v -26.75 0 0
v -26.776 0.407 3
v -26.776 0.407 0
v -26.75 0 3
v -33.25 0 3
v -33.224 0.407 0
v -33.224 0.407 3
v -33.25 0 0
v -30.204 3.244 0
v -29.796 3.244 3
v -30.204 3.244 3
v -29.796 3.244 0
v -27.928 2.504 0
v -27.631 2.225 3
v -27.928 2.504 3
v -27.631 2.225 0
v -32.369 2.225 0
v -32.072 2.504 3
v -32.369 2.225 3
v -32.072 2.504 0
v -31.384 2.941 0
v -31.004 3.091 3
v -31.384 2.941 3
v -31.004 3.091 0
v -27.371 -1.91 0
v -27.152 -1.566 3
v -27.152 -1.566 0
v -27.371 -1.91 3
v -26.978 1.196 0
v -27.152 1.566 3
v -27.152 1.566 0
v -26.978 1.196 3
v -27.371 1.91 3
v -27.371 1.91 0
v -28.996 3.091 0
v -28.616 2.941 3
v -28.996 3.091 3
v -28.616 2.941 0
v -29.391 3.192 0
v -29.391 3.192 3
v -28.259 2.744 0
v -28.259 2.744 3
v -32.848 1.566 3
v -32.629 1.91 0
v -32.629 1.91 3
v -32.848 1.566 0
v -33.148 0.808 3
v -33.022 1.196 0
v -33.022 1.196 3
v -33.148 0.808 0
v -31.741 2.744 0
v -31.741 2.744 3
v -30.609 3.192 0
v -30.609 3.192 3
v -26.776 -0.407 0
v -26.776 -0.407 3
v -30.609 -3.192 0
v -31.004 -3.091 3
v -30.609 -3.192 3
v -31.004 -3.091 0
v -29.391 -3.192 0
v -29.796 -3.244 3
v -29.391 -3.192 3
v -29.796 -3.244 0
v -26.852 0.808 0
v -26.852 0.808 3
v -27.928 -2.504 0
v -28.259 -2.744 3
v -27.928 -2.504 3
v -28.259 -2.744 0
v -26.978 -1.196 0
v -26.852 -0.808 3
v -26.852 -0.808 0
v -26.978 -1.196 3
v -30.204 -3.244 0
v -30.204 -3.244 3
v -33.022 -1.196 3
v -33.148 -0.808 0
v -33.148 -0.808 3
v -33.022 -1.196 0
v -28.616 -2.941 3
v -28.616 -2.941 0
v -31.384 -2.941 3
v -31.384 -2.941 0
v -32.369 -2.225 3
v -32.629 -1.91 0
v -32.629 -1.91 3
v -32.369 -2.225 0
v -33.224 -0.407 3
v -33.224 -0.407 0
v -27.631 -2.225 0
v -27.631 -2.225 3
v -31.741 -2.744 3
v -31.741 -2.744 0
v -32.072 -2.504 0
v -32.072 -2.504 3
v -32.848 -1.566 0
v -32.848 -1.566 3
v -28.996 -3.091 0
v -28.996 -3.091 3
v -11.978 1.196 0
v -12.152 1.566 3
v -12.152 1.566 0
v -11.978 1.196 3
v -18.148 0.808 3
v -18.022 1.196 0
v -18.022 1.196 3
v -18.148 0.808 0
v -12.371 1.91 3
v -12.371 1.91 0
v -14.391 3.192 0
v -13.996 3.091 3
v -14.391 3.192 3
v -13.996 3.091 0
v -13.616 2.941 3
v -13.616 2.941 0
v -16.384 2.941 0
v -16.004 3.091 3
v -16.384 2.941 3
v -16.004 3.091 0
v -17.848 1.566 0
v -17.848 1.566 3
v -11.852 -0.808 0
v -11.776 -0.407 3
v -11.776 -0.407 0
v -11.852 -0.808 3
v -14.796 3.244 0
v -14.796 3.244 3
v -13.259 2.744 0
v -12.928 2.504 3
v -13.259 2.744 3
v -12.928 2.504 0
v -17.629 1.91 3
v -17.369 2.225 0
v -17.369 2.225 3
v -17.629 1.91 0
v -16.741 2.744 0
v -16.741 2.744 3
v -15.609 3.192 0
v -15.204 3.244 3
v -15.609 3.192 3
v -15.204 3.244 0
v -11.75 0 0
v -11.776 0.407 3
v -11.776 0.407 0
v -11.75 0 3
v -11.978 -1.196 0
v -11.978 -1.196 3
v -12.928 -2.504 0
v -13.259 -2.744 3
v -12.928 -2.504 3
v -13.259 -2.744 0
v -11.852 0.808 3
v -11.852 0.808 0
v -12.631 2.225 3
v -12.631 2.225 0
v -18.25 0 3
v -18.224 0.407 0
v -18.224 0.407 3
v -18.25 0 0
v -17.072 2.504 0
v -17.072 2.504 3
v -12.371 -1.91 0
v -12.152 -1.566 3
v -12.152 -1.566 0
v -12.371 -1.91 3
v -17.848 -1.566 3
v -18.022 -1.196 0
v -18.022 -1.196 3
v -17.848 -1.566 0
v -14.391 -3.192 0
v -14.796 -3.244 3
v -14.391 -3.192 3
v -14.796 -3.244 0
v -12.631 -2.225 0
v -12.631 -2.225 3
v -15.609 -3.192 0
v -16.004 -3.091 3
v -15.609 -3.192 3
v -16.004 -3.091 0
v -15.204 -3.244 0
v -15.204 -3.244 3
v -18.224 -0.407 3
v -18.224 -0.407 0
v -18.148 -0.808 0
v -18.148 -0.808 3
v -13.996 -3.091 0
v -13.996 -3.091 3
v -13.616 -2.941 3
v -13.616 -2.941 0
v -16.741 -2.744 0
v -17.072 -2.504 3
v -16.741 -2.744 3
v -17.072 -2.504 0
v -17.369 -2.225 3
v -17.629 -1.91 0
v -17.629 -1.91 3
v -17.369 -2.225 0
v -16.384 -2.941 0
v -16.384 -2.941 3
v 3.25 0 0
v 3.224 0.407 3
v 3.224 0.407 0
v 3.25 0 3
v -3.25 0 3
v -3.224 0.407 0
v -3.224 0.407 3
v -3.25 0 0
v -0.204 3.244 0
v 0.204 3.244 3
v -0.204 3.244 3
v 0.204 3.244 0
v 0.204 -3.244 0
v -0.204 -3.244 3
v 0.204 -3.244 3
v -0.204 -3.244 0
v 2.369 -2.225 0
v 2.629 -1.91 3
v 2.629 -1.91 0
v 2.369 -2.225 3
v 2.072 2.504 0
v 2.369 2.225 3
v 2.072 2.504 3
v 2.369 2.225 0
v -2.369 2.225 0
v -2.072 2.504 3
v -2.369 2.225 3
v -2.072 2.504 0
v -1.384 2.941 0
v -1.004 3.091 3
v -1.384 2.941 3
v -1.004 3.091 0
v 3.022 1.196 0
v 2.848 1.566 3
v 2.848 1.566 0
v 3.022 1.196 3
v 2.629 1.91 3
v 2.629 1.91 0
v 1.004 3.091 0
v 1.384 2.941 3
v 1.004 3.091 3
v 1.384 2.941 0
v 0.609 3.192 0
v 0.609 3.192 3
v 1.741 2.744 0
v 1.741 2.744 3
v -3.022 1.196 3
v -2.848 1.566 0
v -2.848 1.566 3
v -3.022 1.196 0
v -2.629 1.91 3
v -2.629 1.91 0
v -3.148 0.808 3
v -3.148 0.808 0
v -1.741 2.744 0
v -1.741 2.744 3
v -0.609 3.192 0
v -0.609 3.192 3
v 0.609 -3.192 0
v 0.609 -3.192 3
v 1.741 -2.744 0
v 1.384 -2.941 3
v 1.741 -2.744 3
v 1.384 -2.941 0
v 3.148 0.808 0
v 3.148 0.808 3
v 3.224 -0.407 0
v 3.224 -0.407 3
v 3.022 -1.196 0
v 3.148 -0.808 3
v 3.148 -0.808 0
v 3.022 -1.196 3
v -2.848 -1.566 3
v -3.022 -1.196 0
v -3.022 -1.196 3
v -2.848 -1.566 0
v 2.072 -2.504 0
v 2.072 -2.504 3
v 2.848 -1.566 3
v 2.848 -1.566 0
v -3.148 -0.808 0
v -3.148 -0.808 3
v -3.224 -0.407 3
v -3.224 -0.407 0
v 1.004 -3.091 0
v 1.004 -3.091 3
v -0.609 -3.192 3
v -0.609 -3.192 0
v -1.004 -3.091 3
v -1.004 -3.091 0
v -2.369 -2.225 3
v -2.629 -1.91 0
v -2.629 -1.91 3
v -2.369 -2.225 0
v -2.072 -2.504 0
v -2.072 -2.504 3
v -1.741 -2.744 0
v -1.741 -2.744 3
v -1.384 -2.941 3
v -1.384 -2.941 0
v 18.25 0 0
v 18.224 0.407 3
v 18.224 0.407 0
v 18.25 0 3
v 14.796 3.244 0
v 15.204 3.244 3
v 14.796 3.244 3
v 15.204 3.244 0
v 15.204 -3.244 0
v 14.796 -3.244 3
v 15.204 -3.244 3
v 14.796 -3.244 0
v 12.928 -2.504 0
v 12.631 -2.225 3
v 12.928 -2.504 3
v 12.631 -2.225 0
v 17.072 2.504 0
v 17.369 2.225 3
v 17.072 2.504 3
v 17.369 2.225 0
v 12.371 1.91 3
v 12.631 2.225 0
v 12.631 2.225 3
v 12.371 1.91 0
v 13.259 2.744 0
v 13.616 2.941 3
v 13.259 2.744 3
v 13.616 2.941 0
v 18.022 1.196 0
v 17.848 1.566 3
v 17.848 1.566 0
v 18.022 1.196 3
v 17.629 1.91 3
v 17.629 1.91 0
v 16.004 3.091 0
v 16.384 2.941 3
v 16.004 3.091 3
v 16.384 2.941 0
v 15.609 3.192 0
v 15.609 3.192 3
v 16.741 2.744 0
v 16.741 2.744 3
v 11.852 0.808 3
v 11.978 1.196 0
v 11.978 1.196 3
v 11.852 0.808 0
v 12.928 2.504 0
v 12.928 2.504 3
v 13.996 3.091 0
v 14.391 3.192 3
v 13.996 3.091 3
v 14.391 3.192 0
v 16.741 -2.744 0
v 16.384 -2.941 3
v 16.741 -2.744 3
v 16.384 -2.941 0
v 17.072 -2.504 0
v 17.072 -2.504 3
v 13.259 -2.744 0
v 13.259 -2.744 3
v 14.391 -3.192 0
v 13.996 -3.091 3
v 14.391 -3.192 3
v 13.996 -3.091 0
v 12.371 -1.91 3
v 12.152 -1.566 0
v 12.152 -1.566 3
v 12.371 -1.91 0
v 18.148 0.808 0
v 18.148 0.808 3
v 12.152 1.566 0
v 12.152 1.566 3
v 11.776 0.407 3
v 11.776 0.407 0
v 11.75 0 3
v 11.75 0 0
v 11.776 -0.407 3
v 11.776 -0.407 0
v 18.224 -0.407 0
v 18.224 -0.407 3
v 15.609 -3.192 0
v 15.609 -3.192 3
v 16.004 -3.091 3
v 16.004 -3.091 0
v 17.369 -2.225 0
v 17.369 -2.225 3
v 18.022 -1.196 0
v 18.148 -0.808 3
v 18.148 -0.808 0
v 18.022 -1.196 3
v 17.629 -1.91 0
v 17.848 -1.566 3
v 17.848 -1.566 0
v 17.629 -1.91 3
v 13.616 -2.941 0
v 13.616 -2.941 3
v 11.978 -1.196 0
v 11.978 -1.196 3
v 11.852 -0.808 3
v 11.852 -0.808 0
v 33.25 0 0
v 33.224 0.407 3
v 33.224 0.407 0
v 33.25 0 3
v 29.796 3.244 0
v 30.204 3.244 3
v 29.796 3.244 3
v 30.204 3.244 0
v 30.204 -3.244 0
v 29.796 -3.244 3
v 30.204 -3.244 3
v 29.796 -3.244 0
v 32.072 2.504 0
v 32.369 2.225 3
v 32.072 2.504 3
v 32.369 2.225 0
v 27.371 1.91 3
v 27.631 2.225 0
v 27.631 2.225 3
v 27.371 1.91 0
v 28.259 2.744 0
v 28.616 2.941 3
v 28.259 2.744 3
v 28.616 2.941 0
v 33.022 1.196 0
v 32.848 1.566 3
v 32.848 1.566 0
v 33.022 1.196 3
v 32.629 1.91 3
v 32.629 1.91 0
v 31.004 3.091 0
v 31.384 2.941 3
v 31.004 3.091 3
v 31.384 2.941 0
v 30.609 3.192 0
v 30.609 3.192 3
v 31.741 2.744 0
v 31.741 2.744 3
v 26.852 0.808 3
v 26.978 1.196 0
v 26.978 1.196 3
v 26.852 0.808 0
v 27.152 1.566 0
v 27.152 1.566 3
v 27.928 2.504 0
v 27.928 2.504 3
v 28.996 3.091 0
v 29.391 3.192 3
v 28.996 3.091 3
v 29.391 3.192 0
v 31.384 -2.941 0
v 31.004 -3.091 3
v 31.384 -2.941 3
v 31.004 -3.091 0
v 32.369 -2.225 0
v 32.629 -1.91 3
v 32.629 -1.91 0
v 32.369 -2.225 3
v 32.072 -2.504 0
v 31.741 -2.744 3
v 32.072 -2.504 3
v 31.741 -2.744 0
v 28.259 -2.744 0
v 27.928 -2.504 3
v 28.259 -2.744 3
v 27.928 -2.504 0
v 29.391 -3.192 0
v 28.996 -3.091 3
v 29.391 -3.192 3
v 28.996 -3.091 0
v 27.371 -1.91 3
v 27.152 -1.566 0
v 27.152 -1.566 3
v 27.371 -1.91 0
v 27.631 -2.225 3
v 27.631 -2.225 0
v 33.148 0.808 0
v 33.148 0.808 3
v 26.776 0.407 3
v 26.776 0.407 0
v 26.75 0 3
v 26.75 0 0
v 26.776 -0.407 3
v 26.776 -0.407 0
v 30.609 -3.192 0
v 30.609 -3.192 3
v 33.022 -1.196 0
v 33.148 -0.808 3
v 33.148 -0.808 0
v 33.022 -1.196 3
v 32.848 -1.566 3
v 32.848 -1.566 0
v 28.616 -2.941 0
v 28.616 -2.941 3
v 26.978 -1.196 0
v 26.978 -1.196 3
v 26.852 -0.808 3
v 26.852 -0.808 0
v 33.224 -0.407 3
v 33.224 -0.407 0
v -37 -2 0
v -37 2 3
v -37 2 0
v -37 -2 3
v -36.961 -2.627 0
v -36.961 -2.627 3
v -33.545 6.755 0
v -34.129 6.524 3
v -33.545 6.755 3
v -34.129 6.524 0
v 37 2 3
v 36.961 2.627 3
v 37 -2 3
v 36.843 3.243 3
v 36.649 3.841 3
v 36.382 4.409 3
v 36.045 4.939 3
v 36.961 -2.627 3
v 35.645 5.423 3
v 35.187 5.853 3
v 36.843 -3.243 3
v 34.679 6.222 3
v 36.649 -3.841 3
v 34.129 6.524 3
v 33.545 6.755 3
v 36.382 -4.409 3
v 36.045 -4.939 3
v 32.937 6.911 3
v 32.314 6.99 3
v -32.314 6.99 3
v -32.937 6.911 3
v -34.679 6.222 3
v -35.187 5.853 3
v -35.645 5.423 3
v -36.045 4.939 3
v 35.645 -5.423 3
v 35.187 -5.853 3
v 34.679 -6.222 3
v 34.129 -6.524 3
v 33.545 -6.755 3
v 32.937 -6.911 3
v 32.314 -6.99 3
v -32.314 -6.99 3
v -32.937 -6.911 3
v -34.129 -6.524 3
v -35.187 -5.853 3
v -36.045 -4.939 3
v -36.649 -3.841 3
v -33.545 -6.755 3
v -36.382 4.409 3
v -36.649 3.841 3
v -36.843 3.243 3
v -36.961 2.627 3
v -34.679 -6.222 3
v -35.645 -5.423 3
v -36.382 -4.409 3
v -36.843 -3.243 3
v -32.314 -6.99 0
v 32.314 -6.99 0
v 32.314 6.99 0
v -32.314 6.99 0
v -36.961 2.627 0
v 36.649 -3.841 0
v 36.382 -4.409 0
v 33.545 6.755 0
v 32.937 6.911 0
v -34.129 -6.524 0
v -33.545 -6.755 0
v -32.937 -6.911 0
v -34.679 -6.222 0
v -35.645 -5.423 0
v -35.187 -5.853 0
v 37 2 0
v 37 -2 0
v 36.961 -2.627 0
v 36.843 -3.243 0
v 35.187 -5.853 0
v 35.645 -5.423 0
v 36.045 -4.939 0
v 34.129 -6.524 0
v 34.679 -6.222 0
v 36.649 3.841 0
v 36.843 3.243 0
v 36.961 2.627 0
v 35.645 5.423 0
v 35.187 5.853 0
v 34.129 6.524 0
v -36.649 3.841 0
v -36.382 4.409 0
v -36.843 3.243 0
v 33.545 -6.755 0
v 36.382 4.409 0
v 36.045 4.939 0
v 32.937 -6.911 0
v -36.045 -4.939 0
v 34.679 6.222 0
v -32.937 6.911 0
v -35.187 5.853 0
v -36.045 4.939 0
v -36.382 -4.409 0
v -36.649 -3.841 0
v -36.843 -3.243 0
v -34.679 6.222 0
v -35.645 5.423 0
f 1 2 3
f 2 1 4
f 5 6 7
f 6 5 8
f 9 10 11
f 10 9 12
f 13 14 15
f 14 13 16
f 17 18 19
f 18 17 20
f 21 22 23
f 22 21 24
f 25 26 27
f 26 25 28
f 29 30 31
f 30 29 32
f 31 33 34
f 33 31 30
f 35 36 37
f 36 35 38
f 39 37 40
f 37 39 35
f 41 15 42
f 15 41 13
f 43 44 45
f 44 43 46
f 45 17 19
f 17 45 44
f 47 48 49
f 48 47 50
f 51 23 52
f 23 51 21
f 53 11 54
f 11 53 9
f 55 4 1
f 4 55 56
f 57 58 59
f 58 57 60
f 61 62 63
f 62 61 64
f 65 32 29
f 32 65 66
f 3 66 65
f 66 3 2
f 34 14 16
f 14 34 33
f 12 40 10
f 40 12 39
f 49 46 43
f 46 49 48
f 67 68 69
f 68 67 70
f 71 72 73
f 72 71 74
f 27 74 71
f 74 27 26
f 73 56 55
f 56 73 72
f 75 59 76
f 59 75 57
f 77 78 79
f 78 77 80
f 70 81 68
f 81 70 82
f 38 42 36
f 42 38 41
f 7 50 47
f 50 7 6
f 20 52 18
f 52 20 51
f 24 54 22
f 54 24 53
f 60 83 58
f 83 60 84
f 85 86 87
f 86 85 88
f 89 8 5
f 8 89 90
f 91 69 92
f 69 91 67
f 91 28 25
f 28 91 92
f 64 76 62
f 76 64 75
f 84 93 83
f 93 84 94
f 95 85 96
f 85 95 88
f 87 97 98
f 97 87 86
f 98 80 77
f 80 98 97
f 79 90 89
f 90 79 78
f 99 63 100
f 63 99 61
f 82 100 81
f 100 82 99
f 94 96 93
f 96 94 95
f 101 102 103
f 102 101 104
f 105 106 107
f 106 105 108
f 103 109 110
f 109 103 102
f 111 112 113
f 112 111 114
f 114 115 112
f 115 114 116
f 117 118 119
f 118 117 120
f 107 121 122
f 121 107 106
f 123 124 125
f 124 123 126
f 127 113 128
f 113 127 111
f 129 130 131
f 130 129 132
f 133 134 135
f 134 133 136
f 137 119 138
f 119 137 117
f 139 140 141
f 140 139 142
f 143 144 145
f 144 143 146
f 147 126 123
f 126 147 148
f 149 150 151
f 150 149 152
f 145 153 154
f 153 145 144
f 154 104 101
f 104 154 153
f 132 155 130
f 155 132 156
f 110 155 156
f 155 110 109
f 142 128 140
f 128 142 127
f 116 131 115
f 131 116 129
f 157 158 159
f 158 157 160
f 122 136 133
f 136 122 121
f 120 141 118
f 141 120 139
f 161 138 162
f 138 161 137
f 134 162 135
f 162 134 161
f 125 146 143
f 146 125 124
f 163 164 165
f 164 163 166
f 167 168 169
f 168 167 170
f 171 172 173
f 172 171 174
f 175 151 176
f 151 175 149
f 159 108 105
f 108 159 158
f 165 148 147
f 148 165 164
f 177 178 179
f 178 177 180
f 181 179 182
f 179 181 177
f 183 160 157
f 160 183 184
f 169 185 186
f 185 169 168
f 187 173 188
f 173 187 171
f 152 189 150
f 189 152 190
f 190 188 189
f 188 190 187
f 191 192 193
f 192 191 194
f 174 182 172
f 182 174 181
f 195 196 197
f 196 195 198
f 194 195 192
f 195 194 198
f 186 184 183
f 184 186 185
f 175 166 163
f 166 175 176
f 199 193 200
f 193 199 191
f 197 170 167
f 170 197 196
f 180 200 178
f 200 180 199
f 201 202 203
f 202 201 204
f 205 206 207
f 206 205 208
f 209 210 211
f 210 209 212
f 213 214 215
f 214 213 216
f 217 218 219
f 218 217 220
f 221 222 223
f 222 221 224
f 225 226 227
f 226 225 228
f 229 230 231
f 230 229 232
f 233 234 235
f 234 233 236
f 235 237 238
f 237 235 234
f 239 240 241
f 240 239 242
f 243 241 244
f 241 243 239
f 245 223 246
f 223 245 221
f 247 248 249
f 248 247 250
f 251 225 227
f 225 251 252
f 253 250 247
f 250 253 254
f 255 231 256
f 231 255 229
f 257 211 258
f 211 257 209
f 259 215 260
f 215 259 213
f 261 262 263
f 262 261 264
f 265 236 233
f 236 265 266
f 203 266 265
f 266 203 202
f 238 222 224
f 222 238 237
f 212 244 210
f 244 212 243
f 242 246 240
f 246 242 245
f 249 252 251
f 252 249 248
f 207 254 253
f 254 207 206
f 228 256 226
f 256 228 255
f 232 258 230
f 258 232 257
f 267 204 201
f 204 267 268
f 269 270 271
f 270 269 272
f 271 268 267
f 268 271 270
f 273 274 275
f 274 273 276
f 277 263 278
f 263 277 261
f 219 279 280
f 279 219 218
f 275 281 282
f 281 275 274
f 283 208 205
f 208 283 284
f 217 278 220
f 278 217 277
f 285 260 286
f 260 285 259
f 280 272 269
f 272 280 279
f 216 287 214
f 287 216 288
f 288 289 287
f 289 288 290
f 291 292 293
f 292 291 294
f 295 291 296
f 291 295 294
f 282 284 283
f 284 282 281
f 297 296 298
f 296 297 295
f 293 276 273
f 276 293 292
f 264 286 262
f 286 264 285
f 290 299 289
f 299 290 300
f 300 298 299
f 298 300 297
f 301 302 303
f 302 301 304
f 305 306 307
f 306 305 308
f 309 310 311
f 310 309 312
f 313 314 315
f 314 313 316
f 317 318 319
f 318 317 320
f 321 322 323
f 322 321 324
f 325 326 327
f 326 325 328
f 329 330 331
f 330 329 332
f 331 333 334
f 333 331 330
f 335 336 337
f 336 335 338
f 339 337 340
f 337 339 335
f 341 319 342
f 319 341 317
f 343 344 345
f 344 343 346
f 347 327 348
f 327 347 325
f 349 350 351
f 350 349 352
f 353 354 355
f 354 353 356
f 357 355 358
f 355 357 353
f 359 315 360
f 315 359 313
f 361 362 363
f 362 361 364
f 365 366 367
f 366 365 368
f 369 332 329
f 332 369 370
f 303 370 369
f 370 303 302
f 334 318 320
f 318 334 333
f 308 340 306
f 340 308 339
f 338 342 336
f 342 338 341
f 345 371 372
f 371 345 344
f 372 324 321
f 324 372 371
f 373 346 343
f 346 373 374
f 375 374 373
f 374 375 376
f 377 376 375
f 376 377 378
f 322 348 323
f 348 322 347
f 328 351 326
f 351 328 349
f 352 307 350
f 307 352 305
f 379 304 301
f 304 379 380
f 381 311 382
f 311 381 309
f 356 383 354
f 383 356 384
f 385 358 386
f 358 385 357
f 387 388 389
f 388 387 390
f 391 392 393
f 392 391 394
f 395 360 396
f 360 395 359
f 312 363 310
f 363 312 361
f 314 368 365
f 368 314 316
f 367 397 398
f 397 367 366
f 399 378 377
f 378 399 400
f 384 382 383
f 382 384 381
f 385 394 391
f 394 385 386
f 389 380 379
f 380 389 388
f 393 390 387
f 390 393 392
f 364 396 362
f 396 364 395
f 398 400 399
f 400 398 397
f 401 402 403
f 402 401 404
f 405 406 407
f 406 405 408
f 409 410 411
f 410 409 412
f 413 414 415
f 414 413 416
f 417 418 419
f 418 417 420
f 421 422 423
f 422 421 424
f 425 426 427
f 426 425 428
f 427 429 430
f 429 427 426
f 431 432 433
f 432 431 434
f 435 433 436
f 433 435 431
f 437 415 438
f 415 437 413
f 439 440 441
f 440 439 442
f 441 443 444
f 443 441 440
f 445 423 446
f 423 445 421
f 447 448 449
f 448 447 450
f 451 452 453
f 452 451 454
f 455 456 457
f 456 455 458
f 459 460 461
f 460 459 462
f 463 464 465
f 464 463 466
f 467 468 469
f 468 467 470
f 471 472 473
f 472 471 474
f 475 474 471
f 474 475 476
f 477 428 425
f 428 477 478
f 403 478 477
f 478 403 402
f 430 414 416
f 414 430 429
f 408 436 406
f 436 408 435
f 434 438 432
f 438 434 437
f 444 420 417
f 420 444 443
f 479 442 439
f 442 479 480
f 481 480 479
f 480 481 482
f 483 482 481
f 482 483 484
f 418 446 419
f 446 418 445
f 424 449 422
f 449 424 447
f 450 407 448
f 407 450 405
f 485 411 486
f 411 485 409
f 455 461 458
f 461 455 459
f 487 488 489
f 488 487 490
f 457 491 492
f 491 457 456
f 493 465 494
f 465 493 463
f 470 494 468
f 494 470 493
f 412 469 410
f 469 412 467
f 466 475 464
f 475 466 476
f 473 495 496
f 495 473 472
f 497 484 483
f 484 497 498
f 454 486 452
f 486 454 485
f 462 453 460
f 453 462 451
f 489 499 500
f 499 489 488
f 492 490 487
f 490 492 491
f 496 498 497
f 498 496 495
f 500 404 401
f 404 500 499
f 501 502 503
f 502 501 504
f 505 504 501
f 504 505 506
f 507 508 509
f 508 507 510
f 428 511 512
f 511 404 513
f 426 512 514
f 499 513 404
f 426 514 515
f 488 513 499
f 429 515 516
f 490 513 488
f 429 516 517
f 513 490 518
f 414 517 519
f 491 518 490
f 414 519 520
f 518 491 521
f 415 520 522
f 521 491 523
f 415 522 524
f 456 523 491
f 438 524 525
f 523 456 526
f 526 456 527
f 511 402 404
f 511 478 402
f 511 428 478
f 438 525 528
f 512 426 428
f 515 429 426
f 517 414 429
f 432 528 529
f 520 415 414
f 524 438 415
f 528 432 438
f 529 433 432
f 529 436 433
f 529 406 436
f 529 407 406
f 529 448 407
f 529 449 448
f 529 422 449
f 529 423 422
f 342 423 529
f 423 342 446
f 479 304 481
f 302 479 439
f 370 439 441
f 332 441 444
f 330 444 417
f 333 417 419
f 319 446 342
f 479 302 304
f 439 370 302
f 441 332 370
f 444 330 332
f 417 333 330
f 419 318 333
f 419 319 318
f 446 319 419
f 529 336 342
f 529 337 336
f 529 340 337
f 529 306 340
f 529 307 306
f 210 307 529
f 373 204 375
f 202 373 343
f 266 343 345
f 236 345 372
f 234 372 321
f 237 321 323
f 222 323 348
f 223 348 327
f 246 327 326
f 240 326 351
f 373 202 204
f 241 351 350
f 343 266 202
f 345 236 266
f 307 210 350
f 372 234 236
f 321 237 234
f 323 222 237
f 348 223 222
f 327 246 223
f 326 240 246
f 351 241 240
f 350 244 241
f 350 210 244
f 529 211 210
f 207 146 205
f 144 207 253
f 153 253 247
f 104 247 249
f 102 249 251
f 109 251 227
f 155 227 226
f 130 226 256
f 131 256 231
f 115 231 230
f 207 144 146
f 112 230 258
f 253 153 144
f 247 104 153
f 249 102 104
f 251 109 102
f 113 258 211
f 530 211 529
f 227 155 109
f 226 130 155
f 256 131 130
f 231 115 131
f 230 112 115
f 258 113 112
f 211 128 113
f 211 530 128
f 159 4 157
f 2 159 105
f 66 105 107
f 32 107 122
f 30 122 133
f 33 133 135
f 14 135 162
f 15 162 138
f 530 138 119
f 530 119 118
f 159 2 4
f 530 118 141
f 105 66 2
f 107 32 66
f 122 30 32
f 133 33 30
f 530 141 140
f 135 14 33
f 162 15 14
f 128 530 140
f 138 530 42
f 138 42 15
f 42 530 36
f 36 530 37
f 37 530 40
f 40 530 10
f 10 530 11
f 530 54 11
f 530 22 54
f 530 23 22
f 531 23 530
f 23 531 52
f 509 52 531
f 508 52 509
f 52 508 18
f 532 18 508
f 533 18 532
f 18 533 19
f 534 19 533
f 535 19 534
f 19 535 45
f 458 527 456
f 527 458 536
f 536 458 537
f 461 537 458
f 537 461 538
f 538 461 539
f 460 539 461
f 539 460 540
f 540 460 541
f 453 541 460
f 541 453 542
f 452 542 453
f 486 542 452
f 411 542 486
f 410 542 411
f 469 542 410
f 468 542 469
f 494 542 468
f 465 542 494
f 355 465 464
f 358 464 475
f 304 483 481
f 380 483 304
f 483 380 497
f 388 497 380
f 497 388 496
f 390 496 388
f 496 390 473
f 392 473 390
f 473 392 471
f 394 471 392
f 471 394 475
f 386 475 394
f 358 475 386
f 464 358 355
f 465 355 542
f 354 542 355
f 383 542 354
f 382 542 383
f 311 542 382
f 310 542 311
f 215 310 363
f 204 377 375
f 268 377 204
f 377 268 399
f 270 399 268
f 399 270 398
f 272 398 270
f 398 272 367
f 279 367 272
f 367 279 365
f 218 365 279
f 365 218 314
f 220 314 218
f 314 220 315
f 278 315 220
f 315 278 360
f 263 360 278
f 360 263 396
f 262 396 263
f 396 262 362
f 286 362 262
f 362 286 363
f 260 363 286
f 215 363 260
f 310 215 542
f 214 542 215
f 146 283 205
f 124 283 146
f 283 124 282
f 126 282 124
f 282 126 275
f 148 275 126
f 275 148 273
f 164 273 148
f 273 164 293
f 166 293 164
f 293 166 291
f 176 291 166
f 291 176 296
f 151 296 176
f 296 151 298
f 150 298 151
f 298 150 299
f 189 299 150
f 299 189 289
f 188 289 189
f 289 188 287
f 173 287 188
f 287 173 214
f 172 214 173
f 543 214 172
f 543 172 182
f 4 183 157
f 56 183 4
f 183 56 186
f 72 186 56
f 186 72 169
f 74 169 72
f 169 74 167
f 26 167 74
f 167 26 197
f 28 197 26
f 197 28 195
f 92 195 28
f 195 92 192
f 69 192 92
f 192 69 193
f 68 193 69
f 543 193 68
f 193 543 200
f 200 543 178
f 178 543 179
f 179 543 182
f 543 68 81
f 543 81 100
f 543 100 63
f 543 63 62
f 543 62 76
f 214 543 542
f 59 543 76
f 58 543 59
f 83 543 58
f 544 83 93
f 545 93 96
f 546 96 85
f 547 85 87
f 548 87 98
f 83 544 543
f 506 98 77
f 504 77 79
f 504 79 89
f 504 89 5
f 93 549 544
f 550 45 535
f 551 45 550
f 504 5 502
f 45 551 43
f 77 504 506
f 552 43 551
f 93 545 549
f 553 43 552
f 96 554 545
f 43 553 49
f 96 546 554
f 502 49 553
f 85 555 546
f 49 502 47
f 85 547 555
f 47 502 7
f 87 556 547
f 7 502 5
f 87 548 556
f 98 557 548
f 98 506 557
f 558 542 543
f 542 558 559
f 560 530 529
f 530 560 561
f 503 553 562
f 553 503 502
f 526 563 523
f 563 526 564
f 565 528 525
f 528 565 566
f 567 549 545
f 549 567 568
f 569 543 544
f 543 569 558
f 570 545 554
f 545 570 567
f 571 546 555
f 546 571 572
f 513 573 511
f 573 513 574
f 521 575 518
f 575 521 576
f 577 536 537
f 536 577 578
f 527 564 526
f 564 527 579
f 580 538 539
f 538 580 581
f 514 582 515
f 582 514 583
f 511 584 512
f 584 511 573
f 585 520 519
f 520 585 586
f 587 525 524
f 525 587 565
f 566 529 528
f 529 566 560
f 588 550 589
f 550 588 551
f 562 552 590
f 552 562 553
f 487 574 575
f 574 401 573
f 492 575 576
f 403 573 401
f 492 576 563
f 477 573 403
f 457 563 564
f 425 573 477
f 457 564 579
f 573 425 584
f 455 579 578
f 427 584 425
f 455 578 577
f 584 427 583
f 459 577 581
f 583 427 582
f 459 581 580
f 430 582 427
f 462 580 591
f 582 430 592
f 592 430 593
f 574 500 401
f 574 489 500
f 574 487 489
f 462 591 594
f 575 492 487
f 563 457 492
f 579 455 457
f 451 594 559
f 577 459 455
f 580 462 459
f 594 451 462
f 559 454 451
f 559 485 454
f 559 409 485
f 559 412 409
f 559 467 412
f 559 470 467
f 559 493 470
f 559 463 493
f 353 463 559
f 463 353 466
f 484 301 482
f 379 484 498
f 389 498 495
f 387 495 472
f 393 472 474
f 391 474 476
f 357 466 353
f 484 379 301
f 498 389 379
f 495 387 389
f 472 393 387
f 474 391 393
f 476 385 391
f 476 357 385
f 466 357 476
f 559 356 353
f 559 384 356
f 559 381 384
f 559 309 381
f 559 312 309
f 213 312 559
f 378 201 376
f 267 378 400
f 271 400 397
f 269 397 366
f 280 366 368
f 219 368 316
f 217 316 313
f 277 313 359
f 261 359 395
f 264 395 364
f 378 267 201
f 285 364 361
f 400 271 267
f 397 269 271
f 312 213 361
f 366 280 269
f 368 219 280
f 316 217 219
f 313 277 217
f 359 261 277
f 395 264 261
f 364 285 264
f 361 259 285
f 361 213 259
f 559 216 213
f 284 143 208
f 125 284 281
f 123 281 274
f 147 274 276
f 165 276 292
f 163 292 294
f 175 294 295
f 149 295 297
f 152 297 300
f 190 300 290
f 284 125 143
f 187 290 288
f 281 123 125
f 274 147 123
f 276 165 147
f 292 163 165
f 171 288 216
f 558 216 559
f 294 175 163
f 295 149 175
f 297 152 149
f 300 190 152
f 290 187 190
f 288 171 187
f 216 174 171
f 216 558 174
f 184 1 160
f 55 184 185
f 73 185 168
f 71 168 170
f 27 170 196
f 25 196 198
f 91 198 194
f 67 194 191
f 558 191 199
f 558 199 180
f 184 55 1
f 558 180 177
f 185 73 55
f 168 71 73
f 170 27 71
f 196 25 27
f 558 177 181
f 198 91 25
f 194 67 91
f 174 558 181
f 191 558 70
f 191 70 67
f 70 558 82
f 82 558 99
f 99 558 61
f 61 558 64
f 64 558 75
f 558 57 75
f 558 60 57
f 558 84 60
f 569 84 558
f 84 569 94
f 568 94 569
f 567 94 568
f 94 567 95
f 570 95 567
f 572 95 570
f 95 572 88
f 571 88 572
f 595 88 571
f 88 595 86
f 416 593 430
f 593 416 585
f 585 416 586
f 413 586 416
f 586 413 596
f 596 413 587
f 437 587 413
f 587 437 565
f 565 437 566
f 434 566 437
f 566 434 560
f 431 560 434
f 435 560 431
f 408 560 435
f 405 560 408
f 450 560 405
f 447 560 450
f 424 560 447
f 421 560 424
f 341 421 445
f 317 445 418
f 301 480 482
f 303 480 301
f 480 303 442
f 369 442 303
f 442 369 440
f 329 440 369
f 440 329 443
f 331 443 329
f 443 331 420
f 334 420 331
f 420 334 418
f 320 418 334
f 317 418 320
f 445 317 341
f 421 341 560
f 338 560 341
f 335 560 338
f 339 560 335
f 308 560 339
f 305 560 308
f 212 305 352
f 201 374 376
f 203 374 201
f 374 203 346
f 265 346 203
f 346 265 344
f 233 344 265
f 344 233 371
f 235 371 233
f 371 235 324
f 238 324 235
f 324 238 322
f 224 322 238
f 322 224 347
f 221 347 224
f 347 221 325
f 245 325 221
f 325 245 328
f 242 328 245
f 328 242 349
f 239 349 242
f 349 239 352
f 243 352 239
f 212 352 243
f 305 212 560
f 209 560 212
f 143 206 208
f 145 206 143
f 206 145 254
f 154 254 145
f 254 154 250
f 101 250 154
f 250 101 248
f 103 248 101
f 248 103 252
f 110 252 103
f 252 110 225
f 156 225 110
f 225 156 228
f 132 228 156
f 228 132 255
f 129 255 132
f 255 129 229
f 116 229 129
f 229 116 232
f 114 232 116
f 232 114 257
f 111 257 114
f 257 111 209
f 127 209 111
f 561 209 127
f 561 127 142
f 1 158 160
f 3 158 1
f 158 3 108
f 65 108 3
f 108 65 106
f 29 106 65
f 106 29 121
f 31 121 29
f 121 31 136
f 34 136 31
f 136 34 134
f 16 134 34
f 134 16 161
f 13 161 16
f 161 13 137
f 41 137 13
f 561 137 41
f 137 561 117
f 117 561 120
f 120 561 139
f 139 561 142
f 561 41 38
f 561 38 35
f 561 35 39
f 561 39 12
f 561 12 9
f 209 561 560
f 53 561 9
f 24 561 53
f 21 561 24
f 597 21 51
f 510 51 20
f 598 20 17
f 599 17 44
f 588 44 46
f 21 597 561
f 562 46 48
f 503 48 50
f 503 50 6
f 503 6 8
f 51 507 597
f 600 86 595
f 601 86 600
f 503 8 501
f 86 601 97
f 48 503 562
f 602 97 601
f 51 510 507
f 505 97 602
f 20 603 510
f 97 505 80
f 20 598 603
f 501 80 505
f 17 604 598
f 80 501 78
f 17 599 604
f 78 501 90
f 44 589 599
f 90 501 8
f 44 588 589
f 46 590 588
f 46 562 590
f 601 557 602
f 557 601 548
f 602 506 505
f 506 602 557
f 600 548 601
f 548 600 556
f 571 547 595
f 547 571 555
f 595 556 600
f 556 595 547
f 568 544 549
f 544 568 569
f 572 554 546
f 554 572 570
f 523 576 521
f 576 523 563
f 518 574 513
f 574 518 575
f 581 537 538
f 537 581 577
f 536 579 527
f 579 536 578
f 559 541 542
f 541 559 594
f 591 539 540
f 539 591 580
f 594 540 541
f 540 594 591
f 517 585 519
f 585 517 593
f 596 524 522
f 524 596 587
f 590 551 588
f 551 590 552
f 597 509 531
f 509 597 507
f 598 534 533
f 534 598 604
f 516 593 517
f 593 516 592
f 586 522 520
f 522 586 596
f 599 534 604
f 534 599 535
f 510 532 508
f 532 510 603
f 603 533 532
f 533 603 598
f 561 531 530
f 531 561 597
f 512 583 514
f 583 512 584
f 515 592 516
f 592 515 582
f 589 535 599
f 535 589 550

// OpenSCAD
$fn = 50;


difference() {
	union() {
		hull() {
			translate(v = [-32.0000000000, 2.0000000000, 0]) {
				cylinder(h = 3, r = 5);
			}
			translate(v = [32.0000000000, 2.0000000000, 0]) {
				cylinder(h = 3, r = 5);
			}
			translate(v = [-32.0000000000, -2.0000000000, 0]) {
				cylinder(h = 3, r = 5);
			}
			translate(v = [32.0000000000, -2.0000000000, 0]) {
				cylinder(h = 3, r = 5);
			}
		}
	}
	union() {
		translate(v = [-30.0000000000, 0.0000000000, -100.0000000000]) {
			cylinder(h = 200, r = 3.2500000000);
		}
		translate(v = [-15.0000000000, 0.0000000000, -100.0000000000]) {
			cylinder(h = 200, r = 3.2500000000);
		}
		translate(v = [0.0000000000, 0.0000000000, -100.0000000000]) {
			cylinder(h = 200, r = 3.2500000000);
		}
		translate(v = [15.0000000000, 0.0000000000, -100.0000000000]) {
			cylinder(h = 200, r = 3.2500000000);
		}
		translate(v = [30.0000000000, 0.0000000000, -100.0000000000]) {
			cylinder(h = 200, r = 3.2500000000);
		}
	}
}
